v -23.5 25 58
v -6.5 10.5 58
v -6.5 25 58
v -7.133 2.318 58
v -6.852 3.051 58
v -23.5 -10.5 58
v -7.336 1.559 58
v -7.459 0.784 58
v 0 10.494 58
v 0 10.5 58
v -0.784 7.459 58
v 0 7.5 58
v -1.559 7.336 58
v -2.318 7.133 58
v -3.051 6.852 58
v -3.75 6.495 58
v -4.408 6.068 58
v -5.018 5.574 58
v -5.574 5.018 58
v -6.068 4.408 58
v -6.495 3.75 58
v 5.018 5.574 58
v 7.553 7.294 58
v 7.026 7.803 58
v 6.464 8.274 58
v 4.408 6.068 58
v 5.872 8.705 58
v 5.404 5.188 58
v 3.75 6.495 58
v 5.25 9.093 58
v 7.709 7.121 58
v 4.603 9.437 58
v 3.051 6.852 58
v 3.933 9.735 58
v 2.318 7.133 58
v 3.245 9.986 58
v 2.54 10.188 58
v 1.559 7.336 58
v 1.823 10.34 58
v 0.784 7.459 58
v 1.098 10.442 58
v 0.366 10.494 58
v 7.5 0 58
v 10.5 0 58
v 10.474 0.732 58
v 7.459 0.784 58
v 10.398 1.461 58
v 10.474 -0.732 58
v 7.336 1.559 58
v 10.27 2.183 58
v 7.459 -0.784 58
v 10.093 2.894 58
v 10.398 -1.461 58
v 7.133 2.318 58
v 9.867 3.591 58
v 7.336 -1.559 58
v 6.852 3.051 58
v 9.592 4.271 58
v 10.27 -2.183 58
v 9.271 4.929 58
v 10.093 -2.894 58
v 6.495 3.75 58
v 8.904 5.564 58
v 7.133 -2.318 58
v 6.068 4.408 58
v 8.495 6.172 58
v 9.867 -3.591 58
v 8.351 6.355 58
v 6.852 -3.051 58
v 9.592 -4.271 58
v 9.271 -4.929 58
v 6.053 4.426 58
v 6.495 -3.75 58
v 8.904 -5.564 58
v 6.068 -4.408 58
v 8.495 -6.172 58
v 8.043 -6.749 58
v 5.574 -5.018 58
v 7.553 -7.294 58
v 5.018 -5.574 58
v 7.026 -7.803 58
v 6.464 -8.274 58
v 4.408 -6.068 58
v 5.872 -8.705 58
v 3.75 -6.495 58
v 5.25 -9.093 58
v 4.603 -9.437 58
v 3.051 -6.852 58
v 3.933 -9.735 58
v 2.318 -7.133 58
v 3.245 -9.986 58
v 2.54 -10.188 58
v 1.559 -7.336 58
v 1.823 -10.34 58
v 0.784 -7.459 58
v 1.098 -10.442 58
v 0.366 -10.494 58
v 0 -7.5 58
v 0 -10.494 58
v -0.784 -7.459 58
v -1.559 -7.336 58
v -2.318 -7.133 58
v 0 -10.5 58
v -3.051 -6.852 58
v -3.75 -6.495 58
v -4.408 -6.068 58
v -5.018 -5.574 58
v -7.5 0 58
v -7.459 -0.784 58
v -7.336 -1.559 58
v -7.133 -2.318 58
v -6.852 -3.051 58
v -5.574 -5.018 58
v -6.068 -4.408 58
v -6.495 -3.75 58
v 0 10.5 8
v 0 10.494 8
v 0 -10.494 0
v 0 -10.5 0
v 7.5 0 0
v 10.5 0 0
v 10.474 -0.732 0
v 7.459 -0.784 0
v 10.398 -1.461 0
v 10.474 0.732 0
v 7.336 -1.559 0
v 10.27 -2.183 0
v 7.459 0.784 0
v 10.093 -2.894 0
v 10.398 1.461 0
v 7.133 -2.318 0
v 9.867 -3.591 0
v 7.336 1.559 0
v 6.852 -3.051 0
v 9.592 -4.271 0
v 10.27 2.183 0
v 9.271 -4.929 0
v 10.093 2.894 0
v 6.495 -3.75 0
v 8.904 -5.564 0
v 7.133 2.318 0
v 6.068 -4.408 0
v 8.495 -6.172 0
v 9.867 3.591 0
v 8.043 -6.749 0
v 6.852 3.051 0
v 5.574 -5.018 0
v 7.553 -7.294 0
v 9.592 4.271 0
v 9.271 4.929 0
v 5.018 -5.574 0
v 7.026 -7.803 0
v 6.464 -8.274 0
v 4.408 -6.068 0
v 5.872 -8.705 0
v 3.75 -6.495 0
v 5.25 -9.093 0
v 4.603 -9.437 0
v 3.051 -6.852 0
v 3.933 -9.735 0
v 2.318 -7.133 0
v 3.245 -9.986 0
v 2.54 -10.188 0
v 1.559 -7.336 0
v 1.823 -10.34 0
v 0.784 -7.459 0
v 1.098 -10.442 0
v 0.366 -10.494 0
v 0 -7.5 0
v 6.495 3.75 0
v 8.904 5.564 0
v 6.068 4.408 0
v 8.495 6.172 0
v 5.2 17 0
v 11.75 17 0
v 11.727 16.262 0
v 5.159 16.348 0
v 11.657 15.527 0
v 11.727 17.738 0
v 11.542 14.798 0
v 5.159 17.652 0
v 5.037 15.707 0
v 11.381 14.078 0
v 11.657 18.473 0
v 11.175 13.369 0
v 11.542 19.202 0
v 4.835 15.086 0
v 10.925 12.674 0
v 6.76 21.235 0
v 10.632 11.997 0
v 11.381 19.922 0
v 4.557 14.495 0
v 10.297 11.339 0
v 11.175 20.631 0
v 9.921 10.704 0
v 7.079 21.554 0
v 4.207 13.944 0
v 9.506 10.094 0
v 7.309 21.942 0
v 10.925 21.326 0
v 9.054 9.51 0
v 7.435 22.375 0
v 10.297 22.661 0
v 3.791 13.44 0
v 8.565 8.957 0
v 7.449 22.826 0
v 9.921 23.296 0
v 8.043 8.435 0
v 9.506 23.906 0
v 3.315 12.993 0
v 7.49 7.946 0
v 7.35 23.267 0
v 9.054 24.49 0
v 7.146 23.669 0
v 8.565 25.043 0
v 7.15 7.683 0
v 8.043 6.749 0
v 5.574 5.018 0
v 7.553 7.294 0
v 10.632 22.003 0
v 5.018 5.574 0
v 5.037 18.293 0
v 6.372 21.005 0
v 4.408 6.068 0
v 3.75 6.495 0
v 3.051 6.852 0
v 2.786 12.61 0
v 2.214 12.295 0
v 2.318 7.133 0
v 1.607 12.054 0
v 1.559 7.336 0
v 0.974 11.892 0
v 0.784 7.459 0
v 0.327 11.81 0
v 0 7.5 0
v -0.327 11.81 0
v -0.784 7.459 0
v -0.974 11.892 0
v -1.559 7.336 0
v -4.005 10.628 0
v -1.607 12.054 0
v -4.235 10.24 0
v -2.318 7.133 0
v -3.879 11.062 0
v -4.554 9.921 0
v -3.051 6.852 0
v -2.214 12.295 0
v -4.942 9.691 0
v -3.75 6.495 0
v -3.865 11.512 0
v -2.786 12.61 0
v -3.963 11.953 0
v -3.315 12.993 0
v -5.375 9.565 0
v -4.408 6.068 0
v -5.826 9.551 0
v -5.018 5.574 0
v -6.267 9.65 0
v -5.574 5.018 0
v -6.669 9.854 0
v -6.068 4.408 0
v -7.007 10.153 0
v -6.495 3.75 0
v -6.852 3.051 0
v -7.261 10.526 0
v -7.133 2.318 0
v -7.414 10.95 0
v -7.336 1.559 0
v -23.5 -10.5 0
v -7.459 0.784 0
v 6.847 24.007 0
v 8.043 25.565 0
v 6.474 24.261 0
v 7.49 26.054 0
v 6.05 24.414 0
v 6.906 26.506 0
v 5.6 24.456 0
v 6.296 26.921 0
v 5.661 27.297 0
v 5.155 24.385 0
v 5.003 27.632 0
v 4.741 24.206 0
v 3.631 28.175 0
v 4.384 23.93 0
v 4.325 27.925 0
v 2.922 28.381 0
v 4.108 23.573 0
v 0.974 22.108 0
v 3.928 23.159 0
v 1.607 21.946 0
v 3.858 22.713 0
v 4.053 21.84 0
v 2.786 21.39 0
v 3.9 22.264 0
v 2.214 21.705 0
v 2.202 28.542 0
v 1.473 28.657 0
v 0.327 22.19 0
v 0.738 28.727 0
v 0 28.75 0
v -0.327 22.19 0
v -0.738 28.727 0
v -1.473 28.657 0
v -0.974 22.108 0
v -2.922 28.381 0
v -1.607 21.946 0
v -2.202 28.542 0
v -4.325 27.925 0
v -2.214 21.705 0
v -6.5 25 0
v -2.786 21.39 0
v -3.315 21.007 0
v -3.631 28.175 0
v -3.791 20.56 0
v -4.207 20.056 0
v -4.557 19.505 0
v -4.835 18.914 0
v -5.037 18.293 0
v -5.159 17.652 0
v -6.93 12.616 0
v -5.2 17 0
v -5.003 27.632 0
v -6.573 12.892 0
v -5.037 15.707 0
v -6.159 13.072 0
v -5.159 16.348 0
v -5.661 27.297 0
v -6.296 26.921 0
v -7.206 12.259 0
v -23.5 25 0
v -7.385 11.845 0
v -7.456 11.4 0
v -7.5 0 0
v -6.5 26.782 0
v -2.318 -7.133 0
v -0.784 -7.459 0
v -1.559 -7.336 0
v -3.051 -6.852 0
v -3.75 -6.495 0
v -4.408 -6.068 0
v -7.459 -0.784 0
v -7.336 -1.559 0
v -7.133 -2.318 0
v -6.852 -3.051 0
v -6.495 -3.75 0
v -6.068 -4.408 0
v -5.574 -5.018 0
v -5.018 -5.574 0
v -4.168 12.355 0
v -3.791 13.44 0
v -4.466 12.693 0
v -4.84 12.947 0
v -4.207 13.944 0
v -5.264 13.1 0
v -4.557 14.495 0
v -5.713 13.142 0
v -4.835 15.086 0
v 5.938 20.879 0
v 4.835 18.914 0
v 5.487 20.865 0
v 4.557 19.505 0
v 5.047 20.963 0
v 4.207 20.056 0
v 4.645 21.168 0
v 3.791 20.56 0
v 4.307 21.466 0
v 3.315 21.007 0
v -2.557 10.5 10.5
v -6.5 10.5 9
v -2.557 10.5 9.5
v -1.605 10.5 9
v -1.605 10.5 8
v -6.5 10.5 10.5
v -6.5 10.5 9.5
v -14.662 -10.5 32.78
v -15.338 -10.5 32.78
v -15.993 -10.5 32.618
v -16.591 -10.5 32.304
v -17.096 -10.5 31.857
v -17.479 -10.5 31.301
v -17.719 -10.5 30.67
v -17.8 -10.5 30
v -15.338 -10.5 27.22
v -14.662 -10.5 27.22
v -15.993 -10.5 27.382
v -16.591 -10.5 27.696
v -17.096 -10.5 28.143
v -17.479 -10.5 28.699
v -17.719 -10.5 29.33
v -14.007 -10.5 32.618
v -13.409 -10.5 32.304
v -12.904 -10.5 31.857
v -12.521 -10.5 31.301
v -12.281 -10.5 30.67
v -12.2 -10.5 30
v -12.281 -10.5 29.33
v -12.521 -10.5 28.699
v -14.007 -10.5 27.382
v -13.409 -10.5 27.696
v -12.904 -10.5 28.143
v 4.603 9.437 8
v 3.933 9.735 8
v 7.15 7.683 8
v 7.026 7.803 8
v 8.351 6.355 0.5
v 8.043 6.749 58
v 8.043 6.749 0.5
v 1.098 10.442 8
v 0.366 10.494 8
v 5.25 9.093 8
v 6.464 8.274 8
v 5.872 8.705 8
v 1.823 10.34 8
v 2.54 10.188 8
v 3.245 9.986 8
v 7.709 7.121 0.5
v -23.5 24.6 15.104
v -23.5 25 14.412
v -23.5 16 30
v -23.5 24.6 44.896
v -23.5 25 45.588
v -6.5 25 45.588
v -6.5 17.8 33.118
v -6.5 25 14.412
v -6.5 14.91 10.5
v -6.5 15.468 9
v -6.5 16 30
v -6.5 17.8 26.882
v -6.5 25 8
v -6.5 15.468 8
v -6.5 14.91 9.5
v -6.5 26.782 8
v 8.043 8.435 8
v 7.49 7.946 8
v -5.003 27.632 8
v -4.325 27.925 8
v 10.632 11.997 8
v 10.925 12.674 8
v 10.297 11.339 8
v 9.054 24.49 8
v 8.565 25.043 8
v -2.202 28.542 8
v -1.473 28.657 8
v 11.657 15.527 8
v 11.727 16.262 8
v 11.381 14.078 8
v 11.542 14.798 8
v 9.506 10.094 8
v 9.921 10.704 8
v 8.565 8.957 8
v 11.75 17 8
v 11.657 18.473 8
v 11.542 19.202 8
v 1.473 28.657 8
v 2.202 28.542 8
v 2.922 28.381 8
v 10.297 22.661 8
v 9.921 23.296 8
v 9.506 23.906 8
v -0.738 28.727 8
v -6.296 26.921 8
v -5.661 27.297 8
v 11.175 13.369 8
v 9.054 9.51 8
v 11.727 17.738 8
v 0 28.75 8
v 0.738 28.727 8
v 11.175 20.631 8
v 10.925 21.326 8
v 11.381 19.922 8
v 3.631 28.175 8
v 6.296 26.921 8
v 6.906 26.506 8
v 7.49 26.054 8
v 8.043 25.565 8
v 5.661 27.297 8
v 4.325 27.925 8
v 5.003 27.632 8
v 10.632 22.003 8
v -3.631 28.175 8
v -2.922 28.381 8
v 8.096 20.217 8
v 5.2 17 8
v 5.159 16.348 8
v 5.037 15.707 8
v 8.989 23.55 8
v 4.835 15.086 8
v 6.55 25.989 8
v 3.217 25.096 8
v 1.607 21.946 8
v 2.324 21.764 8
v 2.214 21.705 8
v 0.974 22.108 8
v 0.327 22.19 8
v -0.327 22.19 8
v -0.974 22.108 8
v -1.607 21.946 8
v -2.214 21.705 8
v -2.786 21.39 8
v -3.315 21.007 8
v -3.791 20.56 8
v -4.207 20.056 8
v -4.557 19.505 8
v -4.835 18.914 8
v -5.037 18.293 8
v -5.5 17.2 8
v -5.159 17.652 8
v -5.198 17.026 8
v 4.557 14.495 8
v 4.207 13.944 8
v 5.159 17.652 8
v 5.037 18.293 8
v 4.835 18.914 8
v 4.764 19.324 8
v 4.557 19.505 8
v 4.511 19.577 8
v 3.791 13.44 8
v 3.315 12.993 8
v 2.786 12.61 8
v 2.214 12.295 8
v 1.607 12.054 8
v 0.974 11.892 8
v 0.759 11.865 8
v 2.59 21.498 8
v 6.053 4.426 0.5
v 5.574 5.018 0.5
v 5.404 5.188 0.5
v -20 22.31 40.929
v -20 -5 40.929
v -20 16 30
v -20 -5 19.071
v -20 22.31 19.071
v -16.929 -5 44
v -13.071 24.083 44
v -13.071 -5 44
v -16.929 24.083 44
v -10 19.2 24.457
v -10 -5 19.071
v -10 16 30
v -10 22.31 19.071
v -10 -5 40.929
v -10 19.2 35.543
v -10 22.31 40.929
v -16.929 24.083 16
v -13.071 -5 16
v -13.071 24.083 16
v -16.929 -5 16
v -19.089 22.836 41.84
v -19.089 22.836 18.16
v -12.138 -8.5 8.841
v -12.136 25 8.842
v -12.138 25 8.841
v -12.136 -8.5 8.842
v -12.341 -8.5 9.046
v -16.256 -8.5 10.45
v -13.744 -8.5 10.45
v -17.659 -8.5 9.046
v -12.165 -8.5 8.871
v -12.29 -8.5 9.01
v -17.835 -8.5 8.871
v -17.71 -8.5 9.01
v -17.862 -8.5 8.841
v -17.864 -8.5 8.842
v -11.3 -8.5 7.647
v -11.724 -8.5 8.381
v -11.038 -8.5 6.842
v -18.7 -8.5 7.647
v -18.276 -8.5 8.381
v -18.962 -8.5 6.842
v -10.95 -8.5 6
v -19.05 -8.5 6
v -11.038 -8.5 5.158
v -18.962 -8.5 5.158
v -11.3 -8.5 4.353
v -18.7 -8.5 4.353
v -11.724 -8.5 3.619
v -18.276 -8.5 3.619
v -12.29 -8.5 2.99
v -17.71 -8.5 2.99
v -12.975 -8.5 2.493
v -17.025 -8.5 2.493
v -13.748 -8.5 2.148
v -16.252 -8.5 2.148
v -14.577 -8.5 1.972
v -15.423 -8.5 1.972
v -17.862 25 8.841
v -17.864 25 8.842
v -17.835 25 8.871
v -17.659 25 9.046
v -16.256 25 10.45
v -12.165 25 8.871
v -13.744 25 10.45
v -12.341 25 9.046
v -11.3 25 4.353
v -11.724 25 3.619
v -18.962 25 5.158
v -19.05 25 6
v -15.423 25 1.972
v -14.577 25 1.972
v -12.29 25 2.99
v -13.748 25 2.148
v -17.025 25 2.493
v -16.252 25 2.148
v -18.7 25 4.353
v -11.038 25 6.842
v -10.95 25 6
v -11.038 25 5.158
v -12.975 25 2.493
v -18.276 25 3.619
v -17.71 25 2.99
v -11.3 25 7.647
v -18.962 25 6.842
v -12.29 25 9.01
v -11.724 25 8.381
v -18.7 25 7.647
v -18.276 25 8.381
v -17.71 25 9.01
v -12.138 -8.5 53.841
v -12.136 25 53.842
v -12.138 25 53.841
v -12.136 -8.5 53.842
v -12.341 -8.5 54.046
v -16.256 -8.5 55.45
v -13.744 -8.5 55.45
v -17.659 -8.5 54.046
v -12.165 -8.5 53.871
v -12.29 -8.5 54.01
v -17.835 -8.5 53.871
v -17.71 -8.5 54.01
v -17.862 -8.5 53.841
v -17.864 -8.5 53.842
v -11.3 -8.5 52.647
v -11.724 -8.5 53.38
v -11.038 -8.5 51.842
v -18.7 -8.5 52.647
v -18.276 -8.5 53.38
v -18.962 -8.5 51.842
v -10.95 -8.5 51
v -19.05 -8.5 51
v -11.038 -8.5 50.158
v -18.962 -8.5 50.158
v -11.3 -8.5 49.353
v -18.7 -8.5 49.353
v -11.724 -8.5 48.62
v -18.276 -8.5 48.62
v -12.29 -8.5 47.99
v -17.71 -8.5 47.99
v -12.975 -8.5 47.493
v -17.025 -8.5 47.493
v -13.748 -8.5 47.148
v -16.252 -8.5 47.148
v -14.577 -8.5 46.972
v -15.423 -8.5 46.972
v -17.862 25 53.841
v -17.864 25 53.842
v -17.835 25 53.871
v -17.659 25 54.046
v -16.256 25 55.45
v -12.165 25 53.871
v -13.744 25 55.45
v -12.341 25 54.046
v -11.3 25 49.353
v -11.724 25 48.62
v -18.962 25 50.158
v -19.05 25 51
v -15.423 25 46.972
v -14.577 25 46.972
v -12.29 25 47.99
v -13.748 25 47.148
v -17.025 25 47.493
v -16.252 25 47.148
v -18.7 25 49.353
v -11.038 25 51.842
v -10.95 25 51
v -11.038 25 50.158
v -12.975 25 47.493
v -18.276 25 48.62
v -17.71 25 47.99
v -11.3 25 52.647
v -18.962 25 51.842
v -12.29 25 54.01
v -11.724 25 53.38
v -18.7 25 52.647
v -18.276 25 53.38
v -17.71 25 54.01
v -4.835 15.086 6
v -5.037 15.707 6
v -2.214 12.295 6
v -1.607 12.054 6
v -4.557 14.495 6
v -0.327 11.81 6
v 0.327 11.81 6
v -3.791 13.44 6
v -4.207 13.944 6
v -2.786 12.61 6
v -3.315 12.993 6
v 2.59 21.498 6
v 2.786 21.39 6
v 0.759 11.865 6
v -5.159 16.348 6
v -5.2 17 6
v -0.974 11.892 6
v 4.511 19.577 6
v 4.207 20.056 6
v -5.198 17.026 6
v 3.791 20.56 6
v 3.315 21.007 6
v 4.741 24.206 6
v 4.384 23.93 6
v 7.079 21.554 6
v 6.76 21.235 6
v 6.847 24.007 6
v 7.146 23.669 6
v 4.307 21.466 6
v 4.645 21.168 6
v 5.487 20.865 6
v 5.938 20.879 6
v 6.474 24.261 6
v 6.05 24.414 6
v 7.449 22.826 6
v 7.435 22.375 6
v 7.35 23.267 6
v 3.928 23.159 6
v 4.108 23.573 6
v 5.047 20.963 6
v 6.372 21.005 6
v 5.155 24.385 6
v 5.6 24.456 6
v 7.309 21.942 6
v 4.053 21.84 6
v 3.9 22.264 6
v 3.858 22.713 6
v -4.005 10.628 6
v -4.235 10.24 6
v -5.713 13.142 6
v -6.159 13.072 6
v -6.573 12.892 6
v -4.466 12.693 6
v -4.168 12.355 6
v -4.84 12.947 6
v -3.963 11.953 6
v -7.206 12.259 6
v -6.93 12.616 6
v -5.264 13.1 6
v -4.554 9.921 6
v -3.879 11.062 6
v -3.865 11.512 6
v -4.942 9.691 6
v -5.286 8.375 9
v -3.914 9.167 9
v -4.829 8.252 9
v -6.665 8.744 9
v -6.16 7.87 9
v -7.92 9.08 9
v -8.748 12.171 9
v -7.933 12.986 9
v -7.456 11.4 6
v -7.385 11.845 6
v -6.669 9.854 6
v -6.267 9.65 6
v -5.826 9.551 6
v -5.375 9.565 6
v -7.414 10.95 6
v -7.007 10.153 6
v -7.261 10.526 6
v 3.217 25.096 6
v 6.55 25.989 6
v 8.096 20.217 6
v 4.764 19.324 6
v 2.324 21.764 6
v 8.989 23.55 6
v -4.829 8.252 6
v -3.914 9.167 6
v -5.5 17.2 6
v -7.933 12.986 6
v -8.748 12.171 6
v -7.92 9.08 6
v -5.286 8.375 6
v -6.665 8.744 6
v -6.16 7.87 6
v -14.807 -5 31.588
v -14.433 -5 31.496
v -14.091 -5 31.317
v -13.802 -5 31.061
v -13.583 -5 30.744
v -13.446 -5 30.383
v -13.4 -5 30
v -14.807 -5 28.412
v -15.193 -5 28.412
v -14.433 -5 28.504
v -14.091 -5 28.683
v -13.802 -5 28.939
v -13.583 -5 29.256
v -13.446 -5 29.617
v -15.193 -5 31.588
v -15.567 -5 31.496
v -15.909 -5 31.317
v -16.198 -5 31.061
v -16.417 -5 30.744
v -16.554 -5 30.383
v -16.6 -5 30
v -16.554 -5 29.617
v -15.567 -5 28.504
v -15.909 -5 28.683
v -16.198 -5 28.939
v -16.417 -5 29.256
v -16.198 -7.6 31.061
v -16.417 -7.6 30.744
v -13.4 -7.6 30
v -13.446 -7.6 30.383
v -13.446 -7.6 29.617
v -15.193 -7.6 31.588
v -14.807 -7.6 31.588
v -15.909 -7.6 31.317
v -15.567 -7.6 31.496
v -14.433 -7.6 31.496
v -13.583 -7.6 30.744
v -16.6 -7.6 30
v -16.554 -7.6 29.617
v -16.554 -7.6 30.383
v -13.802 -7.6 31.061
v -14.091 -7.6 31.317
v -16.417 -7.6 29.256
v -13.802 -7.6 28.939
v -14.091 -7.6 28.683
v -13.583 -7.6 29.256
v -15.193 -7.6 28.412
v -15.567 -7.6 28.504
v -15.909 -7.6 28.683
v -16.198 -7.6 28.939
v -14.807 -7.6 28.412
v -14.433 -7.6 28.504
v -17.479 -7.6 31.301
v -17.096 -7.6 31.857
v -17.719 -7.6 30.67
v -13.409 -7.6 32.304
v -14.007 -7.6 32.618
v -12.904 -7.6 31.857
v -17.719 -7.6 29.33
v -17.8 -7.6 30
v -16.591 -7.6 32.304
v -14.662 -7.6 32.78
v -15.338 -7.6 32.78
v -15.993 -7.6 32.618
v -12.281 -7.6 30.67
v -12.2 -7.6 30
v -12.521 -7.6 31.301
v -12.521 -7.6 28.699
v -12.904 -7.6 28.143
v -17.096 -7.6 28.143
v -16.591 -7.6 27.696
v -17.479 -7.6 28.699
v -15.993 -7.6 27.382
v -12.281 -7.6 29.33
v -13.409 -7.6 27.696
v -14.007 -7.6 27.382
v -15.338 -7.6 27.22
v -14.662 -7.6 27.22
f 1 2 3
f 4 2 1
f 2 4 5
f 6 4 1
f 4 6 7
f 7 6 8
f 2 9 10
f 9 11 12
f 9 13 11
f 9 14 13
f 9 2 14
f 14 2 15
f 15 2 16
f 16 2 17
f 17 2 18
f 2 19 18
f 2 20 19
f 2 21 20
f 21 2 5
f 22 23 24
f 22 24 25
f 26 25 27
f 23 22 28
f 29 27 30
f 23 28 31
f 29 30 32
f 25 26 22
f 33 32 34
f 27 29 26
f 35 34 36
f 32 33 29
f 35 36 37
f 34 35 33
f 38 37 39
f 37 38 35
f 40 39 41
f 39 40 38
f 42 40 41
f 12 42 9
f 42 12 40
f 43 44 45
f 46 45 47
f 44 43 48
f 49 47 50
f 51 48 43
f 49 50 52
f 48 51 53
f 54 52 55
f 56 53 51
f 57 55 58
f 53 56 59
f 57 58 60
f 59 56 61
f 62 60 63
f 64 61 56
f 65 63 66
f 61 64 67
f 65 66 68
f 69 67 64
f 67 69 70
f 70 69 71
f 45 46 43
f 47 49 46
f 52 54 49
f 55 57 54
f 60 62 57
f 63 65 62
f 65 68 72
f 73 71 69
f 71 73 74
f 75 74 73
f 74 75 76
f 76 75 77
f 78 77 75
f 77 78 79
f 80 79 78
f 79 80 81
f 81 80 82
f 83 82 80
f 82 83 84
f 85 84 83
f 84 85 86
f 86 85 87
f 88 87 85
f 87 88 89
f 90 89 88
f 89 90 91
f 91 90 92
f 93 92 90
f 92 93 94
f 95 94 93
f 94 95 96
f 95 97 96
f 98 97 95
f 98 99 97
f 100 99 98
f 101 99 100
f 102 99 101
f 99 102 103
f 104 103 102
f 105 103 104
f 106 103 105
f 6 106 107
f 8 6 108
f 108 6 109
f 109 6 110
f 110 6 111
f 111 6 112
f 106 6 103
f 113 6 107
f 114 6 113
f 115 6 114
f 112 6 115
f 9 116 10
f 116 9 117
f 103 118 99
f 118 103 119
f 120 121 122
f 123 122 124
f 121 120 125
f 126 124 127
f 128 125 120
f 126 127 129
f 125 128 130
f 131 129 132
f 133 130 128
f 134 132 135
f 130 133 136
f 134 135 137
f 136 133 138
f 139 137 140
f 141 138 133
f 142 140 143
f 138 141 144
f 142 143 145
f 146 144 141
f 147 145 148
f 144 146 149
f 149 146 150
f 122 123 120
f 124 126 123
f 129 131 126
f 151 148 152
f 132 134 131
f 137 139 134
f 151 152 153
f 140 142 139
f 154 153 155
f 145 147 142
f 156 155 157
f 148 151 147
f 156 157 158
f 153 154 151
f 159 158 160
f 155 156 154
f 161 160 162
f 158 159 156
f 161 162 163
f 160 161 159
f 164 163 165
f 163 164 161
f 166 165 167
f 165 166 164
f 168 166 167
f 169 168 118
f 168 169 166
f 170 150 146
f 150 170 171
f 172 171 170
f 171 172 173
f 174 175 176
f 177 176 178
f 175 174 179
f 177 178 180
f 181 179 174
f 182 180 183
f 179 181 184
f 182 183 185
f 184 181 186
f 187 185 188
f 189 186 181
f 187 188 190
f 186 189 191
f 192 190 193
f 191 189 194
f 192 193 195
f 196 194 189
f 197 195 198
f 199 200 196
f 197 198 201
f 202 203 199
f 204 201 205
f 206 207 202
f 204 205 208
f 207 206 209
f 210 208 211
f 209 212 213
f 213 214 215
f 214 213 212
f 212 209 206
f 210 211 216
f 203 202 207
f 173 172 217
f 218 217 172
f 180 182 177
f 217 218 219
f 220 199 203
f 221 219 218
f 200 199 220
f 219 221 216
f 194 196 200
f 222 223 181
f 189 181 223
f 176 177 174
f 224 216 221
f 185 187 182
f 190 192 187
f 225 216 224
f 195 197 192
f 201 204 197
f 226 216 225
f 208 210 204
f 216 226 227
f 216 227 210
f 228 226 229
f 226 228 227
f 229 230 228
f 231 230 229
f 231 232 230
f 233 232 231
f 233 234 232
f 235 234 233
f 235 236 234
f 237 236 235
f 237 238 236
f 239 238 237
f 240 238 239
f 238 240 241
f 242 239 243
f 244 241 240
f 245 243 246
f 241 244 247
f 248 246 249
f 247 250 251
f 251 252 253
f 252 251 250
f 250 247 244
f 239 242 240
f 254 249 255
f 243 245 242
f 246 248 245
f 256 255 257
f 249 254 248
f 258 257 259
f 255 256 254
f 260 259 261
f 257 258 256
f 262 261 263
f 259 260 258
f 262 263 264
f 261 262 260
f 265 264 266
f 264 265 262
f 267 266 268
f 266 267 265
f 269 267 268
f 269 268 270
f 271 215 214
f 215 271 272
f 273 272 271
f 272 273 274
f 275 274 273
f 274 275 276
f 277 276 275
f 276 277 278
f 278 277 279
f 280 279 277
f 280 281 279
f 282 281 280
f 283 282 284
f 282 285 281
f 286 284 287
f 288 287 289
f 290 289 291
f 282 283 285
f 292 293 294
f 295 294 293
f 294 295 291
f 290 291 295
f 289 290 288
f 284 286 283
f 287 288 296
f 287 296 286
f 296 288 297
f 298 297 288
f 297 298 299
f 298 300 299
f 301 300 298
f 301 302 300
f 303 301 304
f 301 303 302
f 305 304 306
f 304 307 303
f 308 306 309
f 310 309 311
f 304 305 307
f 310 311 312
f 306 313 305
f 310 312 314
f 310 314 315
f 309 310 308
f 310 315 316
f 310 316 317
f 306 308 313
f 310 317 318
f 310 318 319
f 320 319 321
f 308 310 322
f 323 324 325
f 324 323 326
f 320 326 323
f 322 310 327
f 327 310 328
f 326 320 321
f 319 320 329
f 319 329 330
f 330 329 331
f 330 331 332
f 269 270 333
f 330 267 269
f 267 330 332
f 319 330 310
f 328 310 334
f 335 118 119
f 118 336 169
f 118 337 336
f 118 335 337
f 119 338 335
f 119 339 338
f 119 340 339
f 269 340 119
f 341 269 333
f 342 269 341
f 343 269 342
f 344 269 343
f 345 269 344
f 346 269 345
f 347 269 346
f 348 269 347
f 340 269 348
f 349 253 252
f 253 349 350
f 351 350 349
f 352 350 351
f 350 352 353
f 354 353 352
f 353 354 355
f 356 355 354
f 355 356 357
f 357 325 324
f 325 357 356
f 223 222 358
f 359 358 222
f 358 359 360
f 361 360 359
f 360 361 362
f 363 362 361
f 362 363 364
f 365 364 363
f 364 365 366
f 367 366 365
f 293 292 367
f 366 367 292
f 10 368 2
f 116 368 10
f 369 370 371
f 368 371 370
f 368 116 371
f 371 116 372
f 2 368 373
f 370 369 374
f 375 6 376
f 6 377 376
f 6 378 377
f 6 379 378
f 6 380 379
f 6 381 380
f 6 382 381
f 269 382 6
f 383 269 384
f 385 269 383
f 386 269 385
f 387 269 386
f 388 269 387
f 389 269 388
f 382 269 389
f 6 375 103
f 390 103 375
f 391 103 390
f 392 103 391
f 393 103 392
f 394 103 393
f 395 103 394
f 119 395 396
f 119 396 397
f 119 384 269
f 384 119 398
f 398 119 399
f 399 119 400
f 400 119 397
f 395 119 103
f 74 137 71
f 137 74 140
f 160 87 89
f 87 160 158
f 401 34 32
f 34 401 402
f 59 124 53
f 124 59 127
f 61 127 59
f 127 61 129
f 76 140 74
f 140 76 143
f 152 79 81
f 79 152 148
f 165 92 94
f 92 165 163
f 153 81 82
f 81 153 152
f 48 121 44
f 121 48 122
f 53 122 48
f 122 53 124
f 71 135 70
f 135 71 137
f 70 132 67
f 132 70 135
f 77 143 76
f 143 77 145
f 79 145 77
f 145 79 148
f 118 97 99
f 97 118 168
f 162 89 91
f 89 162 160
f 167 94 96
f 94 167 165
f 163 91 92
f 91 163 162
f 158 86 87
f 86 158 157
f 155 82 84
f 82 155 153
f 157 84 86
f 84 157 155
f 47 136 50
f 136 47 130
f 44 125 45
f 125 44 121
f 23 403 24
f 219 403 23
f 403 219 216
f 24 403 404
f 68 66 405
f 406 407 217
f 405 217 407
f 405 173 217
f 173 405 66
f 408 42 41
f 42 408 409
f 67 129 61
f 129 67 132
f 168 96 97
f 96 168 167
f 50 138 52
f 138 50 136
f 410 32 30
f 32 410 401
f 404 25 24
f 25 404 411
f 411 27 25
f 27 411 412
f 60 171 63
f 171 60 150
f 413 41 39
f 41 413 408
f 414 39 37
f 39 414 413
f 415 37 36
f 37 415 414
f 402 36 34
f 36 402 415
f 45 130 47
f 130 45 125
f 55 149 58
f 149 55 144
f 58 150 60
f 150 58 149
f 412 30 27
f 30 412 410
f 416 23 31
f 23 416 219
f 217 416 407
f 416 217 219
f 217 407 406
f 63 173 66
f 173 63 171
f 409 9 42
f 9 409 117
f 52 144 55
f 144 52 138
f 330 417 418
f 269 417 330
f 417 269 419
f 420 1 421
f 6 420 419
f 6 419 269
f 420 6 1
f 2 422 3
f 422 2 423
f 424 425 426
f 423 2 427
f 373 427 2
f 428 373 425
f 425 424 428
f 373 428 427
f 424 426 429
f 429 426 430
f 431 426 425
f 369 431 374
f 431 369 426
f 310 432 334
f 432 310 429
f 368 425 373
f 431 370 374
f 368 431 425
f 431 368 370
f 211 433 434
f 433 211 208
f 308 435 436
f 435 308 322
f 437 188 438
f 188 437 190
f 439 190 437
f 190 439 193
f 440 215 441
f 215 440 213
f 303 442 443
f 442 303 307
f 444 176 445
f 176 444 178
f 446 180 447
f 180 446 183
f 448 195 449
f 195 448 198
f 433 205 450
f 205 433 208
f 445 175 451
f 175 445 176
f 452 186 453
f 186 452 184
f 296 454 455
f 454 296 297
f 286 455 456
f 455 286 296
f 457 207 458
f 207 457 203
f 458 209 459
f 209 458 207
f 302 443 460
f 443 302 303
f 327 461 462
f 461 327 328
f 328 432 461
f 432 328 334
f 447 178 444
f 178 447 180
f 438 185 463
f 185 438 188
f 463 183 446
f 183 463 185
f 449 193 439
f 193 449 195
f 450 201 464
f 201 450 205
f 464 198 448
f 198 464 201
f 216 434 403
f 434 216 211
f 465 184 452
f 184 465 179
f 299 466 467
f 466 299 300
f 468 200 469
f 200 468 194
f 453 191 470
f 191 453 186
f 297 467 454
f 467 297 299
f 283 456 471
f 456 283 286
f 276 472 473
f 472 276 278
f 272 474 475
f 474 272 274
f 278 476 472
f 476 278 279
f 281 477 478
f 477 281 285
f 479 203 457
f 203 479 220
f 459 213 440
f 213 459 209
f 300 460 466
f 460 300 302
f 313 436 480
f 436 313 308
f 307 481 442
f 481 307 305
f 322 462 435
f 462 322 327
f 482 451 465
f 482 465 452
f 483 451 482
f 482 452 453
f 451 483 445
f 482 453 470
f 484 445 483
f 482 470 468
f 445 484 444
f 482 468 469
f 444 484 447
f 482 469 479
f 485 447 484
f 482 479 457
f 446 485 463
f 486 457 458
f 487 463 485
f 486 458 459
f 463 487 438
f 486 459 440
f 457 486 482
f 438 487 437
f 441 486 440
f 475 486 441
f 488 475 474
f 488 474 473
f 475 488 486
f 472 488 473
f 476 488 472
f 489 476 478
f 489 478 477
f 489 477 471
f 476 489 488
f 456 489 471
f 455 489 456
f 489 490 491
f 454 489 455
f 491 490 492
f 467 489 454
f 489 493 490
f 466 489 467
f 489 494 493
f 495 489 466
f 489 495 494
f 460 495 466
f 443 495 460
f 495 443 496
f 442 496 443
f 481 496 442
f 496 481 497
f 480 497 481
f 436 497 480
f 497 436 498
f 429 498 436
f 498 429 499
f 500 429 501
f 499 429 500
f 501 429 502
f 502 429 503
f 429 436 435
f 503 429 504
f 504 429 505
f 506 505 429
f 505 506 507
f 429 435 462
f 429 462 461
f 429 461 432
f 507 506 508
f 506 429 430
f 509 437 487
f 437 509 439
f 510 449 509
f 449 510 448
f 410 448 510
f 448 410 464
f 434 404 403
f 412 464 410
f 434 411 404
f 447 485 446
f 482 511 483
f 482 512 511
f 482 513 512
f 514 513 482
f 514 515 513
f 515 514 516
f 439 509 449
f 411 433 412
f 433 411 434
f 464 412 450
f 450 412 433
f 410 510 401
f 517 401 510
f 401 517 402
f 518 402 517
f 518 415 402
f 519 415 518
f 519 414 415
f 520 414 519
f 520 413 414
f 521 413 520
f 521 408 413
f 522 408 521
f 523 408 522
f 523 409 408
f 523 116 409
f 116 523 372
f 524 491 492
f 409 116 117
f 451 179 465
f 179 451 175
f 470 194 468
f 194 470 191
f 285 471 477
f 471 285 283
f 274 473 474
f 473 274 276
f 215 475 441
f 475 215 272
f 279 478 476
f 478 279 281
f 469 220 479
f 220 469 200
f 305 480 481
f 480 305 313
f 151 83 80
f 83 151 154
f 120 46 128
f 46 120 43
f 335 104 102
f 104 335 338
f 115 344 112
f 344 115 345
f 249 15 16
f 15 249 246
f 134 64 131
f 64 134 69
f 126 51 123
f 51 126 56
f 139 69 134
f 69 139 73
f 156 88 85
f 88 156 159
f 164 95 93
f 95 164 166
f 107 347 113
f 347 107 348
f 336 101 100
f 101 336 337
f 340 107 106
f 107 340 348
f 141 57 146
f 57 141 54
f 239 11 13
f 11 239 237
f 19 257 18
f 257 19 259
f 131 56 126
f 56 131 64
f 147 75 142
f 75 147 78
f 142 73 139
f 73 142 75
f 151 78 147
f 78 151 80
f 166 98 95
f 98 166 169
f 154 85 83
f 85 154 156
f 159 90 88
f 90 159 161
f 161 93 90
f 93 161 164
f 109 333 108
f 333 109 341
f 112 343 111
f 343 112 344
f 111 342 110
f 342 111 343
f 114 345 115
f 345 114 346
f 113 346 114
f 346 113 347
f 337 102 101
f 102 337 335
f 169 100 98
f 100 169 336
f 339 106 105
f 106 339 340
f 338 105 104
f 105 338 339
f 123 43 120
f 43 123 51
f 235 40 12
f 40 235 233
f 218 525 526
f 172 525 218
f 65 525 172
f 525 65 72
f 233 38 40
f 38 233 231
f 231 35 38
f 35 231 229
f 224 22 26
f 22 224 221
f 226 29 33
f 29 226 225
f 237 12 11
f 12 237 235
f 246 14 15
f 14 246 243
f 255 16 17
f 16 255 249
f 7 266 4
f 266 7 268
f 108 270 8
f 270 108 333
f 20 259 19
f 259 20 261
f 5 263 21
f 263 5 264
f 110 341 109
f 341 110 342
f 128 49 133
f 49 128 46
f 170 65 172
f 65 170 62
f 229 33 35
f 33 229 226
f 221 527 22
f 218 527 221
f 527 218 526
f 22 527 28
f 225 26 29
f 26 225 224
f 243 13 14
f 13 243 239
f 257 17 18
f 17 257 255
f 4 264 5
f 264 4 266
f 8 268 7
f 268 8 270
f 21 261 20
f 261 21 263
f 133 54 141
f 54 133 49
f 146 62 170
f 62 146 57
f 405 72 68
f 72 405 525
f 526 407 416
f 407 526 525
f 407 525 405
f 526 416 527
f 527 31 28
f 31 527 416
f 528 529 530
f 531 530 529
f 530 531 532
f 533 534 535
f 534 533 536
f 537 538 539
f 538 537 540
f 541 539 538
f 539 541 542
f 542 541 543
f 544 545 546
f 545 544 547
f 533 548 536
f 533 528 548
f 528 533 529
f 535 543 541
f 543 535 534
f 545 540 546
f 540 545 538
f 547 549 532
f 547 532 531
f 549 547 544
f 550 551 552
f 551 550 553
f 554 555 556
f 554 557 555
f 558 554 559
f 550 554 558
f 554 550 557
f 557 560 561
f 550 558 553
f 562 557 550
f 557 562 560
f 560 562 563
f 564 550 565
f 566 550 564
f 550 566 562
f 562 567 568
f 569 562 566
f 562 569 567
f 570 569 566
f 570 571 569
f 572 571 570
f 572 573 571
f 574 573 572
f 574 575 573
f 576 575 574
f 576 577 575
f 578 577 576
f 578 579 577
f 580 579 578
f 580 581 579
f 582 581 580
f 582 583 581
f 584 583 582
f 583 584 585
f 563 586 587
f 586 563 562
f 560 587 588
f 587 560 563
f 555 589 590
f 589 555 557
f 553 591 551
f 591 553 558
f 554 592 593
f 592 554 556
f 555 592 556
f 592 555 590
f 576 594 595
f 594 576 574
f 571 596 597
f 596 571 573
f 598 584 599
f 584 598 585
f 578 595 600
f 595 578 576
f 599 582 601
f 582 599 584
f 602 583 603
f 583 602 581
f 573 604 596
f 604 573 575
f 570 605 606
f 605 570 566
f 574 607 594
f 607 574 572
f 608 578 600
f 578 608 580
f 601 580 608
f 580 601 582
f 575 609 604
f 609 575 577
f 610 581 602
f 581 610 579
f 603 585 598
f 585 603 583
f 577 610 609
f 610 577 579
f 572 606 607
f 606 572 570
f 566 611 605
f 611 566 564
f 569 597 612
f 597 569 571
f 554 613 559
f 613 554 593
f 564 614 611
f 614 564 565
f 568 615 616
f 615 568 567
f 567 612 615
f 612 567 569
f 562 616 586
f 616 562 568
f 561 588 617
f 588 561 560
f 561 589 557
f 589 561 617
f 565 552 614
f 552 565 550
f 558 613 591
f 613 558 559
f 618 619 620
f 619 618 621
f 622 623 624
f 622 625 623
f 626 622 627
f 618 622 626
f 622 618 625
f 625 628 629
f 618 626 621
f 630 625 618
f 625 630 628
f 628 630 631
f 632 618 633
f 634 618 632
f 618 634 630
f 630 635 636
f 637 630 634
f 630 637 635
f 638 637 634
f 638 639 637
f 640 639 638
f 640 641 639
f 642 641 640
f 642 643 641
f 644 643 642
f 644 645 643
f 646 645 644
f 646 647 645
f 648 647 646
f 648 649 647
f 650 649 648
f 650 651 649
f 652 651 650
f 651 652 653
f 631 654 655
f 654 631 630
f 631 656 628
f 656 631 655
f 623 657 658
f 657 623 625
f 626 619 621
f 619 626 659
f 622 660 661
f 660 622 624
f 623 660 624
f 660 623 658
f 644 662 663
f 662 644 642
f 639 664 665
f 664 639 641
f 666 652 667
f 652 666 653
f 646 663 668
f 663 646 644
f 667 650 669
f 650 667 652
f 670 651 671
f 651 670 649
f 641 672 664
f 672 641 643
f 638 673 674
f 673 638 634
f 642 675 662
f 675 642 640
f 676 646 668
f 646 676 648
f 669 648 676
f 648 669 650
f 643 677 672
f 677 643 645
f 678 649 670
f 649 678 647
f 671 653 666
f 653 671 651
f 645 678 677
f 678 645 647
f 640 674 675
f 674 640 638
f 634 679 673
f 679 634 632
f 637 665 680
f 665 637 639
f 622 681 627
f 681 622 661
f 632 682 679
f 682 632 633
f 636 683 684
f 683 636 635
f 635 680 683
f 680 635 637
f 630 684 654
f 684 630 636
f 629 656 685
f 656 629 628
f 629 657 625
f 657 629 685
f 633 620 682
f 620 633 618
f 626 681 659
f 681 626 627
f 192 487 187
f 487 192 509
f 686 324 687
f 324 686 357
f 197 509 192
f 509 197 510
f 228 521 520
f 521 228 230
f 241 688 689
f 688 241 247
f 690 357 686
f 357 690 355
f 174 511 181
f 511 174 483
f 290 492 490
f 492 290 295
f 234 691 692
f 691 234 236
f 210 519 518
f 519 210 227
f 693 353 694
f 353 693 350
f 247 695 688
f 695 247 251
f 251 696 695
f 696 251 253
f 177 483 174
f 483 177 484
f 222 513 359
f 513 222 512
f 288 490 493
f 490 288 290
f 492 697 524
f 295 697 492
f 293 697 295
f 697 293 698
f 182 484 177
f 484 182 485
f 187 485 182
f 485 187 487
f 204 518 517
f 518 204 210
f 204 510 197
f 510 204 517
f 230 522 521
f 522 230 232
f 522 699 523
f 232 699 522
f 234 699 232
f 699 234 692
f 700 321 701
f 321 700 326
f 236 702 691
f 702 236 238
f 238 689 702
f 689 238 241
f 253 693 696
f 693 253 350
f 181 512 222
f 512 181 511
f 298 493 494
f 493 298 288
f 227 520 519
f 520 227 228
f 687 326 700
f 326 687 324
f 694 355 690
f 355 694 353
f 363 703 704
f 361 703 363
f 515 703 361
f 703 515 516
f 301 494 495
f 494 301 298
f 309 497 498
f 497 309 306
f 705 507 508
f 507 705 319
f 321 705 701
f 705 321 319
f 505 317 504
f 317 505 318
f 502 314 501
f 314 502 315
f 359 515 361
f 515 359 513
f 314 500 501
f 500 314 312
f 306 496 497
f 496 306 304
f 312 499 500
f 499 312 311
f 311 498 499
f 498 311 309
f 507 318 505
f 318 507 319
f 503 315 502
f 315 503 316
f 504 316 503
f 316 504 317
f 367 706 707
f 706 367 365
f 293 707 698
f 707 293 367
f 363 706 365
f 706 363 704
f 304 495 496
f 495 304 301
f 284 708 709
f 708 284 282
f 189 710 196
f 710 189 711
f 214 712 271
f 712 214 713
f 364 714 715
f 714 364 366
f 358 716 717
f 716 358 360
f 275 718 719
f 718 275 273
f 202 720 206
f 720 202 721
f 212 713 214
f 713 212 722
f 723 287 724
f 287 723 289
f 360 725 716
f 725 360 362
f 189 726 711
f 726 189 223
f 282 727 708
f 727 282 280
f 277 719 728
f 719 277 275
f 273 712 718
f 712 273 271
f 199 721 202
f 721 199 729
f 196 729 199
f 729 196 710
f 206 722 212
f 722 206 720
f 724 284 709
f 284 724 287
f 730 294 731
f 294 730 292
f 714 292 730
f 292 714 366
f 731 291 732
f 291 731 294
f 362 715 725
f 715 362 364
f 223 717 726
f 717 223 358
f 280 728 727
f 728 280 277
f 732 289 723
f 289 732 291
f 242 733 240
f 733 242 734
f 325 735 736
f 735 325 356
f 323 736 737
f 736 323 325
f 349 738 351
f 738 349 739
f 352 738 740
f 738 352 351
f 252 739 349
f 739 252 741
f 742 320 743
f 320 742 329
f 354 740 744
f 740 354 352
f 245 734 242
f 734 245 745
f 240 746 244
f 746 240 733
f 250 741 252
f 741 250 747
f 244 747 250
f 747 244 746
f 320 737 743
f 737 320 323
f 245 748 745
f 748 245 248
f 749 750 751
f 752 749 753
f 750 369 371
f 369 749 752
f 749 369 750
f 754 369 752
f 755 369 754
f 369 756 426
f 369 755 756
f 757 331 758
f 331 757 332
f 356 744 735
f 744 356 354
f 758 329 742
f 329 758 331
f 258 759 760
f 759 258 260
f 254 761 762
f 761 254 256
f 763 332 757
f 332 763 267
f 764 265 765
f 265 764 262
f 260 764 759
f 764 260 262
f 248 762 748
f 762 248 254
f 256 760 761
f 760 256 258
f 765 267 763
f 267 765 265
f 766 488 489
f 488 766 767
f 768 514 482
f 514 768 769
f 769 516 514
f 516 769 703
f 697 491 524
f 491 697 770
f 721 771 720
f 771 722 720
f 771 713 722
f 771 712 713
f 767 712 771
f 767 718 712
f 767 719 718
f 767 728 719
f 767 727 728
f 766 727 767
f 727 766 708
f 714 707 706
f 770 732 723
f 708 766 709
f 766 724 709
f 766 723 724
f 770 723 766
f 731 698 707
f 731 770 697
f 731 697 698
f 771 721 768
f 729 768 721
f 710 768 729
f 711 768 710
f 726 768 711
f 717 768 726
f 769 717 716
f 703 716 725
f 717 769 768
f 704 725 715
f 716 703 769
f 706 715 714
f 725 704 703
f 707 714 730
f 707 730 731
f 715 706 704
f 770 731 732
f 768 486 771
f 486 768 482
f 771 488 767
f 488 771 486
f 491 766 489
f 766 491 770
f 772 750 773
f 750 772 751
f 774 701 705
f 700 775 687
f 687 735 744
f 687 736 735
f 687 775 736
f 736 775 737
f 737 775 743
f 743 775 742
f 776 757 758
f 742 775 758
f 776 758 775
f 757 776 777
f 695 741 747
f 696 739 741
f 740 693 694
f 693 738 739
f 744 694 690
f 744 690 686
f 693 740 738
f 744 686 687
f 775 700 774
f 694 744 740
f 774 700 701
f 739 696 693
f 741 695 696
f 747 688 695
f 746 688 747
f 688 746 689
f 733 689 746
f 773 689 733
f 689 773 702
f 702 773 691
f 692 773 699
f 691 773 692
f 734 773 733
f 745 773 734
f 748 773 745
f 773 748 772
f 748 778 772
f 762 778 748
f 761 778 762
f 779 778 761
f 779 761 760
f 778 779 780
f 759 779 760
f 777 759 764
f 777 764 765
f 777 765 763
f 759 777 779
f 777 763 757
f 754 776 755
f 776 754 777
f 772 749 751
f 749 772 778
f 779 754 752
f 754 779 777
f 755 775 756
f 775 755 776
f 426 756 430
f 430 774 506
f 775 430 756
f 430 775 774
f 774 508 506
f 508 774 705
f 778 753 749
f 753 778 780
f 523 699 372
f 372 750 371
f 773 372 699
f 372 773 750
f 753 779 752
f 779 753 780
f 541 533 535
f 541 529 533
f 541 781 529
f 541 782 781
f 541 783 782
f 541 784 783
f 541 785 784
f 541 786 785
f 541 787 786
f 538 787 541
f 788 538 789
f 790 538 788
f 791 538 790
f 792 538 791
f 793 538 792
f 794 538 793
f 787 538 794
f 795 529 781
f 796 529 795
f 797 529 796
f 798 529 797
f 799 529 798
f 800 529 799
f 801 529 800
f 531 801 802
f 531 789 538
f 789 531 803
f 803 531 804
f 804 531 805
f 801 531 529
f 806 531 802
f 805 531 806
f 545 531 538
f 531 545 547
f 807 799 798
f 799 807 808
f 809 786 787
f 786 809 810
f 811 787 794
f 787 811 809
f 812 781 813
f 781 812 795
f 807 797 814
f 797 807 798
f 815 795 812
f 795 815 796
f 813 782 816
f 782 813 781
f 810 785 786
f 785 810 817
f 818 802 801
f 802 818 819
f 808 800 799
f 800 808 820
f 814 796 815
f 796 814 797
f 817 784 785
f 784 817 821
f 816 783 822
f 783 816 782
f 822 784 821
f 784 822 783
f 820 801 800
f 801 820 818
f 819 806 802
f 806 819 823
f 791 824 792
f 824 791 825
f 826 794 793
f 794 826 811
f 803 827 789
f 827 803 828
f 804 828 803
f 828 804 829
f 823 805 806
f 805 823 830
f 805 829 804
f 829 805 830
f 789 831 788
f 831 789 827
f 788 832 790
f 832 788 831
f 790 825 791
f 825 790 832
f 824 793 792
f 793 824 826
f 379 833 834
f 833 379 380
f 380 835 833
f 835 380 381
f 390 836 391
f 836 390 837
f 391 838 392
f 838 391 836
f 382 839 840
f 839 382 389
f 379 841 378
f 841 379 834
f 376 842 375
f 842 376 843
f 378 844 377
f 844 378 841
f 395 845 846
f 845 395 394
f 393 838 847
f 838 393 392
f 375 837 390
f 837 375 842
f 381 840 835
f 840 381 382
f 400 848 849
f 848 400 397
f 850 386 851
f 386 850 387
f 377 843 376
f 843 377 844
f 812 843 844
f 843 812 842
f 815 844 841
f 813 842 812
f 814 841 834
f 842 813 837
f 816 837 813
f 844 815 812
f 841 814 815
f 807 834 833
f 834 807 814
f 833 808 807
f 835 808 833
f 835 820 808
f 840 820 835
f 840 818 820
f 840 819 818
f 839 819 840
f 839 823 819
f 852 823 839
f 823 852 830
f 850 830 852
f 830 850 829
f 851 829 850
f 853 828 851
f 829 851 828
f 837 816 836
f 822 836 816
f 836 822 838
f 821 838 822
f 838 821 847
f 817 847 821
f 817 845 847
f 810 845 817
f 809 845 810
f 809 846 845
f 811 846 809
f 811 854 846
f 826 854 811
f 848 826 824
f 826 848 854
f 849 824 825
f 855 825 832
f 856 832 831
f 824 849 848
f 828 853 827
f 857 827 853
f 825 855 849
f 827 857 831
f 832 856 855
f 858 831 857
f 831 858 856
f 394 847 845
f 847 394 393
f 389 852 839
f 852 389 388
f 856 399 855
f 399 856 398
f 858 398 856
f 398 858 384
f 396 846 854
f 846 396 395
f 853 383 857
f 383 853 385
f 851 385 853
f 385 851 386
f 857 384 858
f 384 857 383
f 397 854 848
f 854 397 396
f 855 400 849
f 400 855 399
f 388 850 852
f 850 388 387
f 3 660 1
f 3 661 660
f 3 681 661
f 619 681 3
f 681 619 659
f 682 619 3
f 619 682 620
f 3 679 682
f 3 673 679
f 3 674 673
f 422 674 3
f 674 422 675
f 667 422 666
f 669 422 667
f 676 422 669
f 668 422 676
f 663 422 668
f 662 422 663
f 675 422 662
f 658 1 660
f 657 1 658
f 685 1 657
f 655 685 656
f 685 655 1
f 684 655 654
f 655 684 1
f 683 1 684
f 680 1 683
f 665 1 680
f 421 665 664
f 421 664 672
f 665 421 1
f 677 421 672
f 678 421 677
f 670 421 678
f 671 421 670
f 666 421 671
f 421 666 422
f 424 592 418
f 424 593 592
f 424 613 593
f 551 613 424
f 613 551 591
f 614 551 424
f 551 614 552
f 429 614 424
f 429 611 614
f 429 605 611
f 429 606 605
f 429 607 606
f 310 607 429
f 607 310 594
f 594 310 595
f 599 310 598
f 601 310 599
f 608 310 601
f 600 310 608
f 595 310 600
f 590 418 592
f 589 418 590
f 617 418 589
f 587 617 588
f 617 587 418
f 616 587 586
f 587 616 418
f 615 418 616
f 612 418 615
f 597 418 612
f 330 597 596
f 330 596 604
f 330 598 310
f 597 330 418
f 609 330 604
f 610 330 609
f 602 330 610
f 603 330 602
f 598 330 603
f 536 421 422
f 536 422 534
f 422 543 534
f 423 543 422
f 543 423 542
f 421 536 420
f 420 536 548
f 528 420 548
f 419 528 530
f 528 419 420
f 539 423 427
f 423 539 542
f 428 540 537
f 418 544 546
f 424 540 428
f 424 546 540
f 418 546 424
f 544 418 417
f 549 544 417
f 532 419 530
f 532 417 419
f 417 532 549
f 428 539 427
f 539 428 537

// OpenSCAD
// file: inc/bearing.scad
// PRUSA iteration3
// Bearing holders
// GNU GPL v3
// Josef Průša <iam@josefprusa.cz> and contributors
// http://www.reprap.org/wiki/Prusa_Mendel
// http://prusamendel.org

bearing_diameter = 15;
thinwall         = 3;
bearing_size     = bearing_diameter + 2 * thinwall;


module horizontal_bearing_base(bearings=1){
    translate(v=[0,0,6]) cube(size = [24,8+bearings*25,12], center = true);	
}

module horizontal_bearing_holes(bearings=1){
    cutter_lenght     = 10+bearings*25;
    one_holder_lenght = 8+25;
    holder_lenght     = 8+bearings*25;
 
    //Main bearing cut
    difference(){
        translate(v=[0,0,12]) rotate(a=[90,0,0]) translate(v=[0,0,-cutter_lenght/2]) cylinder(h = cutter_lenght, r=bearing_diameter/2, $fn=50);
        
        //Bearing retainers
        translate(v=[0,1-holder_lenght/2,3]) cube(size = [24,6,8], center = true);
        translate(v=[0,-1+holder_lenght/2,3]) cube(size = [24,6,8], center = true);
    }
 
    //Ziptie cutouts
    ziptie_cut_ofset = 0;

    for (i = [0 : bearings-1]){
        // For easier positioning I move them by half of one 
        // bearing holder then add each bearign lenght and then center again
        translate(v=[0,-holder_lenght/2,0]) translate(v=[0,one_holder_lenght/2+i*25,0]) difference(){
            union(){
                translate(v=[0,2-6,12]) rotate(a=[90,0,0]) translate(v=[0,0,0]) cylinder(h = 4, r=12.5, $fn=50);
                translate(v=[0,2+6,12]) rotate(a=[90,0,0]) translate(v=[0,0,0]) cylinder(h = 4, r=12.5, $fn=50);
            }
            translate(v=[0,10,12]) rotate(a=[90,0,0]) translate(v=[0,0,0]) cylinder(h = 24, r=10, $fn=50);
        }
    }
}

module horizontal_bearing_test(){
    difference(){
        horizontal_bearing_base(1);
        horizontal_bearing_holes(1);
    }
    translate(v=[30,0,0]) difference(){
        horizontal_bearing_base(2);
        horizontal_bearing_holes(2);
    }

    translate(v=[60,0,0]) difference(){
        horizontal_bearing_base(3);
        horizontal_bearing_holes(3);
    }
}

module vertical_bearing_base(){
    translate(v=[-2-bearing_size/4,0,29]) cube(size = [4+bearing_size/2,bearing_size,58], center = true);
    cylinder(h = 58, r=bearing_size/2, $fn = 90);
}

module vertical_bearing_holes(){
    translate(v=[0,0,-1]) cylinder(h = 62, r=bearing_diameter/2, $fn = 60);
   # rotate(a=[0,0,-40]) translate(v=[8,0,31.5]) cube(size = [5,1,62], center = true);
}

//Final part
difference(){
    vertical_bearing_base();
    vertical_bearing_holes();
}
// file: inc/x-endLeadScrew.scad
// PRUSA iteration3
// X end prototype
// GNU GPL v3
// Josef Průša <iam@josefprusa.cz> and contributors
// http://www.reprap.org/wiki/Prusa_Mendel
// http://prusamendel.org

use <bearing.scad>

rod_distance = 45;


module x_end_base(){
	//Main block
	height = 58;
	translate(v=[-15,-9,height/2]) cube(size = [17,39,height], center = true);
	
	//Bearing holder
 	vertical_bearing_base();	
	
    translate(v=[-6,-10.6,10]) rotate([0,0,48.2]) cube(size = [10,5,1], center = true);
	//Nut trap
 	translate(v=[0,-17,0]) cylinder(h = 8, r=23.5/2, $fn=100);
}

module x_end_holes(){
    vertical_bearing_holes();
    
    //Belt hole
    translate(v=[-1,0,0]) difference(){
	   translate(v=[-5.5-10+1.5,-15,30]) cube(size = [10,46,28], center = true);
    	// Nice edges
    	translate(v=[-5.5-10+1.5,-10,30+23]) rotate([0,45,0]) cube(size = [10,46,28], center = true);
    	translate(v=[-5.5-10+1.5,-10,30+23]) rotate([0,-45,0]) cube(size = [10,46,28], center = true);
    	translate(v=[-5.5-10+1.5,-10,30-23]) rotate([0,45,0]) cube(size = [10,46,28], center = true);
    	translate(v=[-5.5-10+1.5,-10,30-23]) rotate([0,-45,0]) cube(size = [10,46,28], center = true);

    }

    //Bottom pushfit rod
    translate(v=[-15,-41.5,6]) rotate(a=[-90,0,0]) pushfit_rod(8.1,50);

    //Top pushfit rod
    translate(v=[-15,-41.5,rod_distance+6]) rotate(a=[-90,0,0]) pushfit_rod(8.1,50);
    
    //Nut trap
    
    // Hole for the nut
    translate(v=[0,-17, -1]) cylinder(h = 9.01, r = 10/2+0.2, $fn = 50);
    
    // Screw holes for TR nut
    translate(v=[0,-17, 0]) rotate([0, 0, -135]) translate([0, 8, -1]) cylinder(h = 10, r = 1.8, $fn=25);
    translate(v=[0,-17, 0]) rotate([0, 0, -135]) translate([0, -8, -1]) cylinder(h = 10, r = 1.8, $fn=25);
    
    
    translate(v=[0,-17, 0]) rotate([0, 0, -135]) translate([0, 8, 6]) rotate([0, 0, 0])cylinder(h = 3, r = 3.45, $fn=6);

    translate(v=[0,-17, 0]) rotate([0, 0, -135]) translate([0, -8, 6]) rotate([0, 0, 30])cylinder(h = 3, r = 3.2, $fn=6);
    translate([-5.5,-17.2,6]) rotate([0,0,30]) cube([5,5,3]);
    translate([-0,-17.2,6]) rotate([0,0,60]) cube([5,10,3]);
}

module pushfit_rod(diameter,length){
    cylinder(h = length, r=diameter/2, $fn=30);
    difference(){
        translate(v=[0,-diameter/2.85,length/2]) rotate([0,0,45]) cube(size = [diameter/2,diameter/2,length], center = true);
        translate(v=[0,-diameter/4-diameter/2-0.4,length/2]) rotate([0,0,0]) cube(size = [diameter,diameter/2,length], center = true);
    }
}

//Final part
module x_end_plain(){
    difference(){
        x_end_base();
        x_end_holes();
    }
}

x_end_plain();
// main file
// 623/624 bearing belt guide
// Based on Josef Prusa vanilla x-end-idler design (https://github.com/josefprusa/Prusa3-vanilla) and PowerCode Code_Xend_Idler_A_M6 part (https://github.com/Mecan0/Code)
// By Julio Galaron (@jgalaron)
// GNU GPL v3

use <inc/x-endLeadScrew.scad>

module x_end_idler_base(){
	x_end_base();	
}

module x_end_idler_holes(){
	x_end_holes();
    translate([0,-23,30.25])     rotate([0,-90,0]) cylinder(h=80, r=1.8, $fn=30);
	translate([1.5,-23,30.25])   rotate([0,-90,0]) cylinder(h=10, r=3.1, $fn=30);
	translate([-21.5,-23,30.25]) rotate([0,-90,0]) rotate([0,0,30]) cylinder(h=80, r=3.6, $fn=6);
}

module idler(){

	translate([0,0,0])difference(){

	difference(){
		union(){
			intersection(){
				translate(v=[-1,70,0])
					#scale(.98) difference(){
						translate(v=[-5.5-10+1.5,-13.5,30]) cube([10,34,28], center=true);

						// Nice edges
						translate([-5.5-10+1.5,-10,30+23]) rotate([0,45,0])  cube([10,46,28], center=true);
						translate([-5.5-10+1.5,-10,30+23]) rotate([0,-45,0]) cube([10,46,28], center=true);
						translate([-5.5-10+1.5,-10,30-23]) rotate([0,45,0])  cube([10,46,28], center=true);
						translate([-5.5-10+1.5,-10,30-23]) rotate([0,-45,0]) cube([10,46,28], center=true);
					}
				}

				translate([-15,27,30]) rotate([90,0,180]) translate([0,0,13]) cylinder(r=5.5/2, h=6, $fn=26);
			}

			translate([-15,15,30])  rotate([90,0,180]) translate([0,0,13]) cylinder(r=3.2/2, h=20, $fn=26);
			translate([-15,44,30]) rotate([90,0,180]) rotate([0,0,30])    cylinder(h =2.4, r=6/2, $fn=6);

		}
	}

}

module screw(){
	union(){
		cylinder(r=3.2/2, h=40, $fn=26);
		translate([0,0,13]) cylinder(r=5.6/2, h=3, $fn=26);
	}
}


module x_end_idler(){
    translate([-20,-8,14]) cube([10,3,30]);
    
    mirror([0,1,0]) difference(){
       x_end_idler_base();
       x_end_idler_holes();
    }
}

 
*idler();

//Final part
difference(){
    x_end_idler();
    translate([-26.5,25,-1])    cube([20,20,70]);
    translate([-27,36,30])    rotate([90,0,90]) cylinder(h = 25, r=20, $fn=6);
    translate([-15,-23.6,30]) rotate([90,0,180]) screw();
}
